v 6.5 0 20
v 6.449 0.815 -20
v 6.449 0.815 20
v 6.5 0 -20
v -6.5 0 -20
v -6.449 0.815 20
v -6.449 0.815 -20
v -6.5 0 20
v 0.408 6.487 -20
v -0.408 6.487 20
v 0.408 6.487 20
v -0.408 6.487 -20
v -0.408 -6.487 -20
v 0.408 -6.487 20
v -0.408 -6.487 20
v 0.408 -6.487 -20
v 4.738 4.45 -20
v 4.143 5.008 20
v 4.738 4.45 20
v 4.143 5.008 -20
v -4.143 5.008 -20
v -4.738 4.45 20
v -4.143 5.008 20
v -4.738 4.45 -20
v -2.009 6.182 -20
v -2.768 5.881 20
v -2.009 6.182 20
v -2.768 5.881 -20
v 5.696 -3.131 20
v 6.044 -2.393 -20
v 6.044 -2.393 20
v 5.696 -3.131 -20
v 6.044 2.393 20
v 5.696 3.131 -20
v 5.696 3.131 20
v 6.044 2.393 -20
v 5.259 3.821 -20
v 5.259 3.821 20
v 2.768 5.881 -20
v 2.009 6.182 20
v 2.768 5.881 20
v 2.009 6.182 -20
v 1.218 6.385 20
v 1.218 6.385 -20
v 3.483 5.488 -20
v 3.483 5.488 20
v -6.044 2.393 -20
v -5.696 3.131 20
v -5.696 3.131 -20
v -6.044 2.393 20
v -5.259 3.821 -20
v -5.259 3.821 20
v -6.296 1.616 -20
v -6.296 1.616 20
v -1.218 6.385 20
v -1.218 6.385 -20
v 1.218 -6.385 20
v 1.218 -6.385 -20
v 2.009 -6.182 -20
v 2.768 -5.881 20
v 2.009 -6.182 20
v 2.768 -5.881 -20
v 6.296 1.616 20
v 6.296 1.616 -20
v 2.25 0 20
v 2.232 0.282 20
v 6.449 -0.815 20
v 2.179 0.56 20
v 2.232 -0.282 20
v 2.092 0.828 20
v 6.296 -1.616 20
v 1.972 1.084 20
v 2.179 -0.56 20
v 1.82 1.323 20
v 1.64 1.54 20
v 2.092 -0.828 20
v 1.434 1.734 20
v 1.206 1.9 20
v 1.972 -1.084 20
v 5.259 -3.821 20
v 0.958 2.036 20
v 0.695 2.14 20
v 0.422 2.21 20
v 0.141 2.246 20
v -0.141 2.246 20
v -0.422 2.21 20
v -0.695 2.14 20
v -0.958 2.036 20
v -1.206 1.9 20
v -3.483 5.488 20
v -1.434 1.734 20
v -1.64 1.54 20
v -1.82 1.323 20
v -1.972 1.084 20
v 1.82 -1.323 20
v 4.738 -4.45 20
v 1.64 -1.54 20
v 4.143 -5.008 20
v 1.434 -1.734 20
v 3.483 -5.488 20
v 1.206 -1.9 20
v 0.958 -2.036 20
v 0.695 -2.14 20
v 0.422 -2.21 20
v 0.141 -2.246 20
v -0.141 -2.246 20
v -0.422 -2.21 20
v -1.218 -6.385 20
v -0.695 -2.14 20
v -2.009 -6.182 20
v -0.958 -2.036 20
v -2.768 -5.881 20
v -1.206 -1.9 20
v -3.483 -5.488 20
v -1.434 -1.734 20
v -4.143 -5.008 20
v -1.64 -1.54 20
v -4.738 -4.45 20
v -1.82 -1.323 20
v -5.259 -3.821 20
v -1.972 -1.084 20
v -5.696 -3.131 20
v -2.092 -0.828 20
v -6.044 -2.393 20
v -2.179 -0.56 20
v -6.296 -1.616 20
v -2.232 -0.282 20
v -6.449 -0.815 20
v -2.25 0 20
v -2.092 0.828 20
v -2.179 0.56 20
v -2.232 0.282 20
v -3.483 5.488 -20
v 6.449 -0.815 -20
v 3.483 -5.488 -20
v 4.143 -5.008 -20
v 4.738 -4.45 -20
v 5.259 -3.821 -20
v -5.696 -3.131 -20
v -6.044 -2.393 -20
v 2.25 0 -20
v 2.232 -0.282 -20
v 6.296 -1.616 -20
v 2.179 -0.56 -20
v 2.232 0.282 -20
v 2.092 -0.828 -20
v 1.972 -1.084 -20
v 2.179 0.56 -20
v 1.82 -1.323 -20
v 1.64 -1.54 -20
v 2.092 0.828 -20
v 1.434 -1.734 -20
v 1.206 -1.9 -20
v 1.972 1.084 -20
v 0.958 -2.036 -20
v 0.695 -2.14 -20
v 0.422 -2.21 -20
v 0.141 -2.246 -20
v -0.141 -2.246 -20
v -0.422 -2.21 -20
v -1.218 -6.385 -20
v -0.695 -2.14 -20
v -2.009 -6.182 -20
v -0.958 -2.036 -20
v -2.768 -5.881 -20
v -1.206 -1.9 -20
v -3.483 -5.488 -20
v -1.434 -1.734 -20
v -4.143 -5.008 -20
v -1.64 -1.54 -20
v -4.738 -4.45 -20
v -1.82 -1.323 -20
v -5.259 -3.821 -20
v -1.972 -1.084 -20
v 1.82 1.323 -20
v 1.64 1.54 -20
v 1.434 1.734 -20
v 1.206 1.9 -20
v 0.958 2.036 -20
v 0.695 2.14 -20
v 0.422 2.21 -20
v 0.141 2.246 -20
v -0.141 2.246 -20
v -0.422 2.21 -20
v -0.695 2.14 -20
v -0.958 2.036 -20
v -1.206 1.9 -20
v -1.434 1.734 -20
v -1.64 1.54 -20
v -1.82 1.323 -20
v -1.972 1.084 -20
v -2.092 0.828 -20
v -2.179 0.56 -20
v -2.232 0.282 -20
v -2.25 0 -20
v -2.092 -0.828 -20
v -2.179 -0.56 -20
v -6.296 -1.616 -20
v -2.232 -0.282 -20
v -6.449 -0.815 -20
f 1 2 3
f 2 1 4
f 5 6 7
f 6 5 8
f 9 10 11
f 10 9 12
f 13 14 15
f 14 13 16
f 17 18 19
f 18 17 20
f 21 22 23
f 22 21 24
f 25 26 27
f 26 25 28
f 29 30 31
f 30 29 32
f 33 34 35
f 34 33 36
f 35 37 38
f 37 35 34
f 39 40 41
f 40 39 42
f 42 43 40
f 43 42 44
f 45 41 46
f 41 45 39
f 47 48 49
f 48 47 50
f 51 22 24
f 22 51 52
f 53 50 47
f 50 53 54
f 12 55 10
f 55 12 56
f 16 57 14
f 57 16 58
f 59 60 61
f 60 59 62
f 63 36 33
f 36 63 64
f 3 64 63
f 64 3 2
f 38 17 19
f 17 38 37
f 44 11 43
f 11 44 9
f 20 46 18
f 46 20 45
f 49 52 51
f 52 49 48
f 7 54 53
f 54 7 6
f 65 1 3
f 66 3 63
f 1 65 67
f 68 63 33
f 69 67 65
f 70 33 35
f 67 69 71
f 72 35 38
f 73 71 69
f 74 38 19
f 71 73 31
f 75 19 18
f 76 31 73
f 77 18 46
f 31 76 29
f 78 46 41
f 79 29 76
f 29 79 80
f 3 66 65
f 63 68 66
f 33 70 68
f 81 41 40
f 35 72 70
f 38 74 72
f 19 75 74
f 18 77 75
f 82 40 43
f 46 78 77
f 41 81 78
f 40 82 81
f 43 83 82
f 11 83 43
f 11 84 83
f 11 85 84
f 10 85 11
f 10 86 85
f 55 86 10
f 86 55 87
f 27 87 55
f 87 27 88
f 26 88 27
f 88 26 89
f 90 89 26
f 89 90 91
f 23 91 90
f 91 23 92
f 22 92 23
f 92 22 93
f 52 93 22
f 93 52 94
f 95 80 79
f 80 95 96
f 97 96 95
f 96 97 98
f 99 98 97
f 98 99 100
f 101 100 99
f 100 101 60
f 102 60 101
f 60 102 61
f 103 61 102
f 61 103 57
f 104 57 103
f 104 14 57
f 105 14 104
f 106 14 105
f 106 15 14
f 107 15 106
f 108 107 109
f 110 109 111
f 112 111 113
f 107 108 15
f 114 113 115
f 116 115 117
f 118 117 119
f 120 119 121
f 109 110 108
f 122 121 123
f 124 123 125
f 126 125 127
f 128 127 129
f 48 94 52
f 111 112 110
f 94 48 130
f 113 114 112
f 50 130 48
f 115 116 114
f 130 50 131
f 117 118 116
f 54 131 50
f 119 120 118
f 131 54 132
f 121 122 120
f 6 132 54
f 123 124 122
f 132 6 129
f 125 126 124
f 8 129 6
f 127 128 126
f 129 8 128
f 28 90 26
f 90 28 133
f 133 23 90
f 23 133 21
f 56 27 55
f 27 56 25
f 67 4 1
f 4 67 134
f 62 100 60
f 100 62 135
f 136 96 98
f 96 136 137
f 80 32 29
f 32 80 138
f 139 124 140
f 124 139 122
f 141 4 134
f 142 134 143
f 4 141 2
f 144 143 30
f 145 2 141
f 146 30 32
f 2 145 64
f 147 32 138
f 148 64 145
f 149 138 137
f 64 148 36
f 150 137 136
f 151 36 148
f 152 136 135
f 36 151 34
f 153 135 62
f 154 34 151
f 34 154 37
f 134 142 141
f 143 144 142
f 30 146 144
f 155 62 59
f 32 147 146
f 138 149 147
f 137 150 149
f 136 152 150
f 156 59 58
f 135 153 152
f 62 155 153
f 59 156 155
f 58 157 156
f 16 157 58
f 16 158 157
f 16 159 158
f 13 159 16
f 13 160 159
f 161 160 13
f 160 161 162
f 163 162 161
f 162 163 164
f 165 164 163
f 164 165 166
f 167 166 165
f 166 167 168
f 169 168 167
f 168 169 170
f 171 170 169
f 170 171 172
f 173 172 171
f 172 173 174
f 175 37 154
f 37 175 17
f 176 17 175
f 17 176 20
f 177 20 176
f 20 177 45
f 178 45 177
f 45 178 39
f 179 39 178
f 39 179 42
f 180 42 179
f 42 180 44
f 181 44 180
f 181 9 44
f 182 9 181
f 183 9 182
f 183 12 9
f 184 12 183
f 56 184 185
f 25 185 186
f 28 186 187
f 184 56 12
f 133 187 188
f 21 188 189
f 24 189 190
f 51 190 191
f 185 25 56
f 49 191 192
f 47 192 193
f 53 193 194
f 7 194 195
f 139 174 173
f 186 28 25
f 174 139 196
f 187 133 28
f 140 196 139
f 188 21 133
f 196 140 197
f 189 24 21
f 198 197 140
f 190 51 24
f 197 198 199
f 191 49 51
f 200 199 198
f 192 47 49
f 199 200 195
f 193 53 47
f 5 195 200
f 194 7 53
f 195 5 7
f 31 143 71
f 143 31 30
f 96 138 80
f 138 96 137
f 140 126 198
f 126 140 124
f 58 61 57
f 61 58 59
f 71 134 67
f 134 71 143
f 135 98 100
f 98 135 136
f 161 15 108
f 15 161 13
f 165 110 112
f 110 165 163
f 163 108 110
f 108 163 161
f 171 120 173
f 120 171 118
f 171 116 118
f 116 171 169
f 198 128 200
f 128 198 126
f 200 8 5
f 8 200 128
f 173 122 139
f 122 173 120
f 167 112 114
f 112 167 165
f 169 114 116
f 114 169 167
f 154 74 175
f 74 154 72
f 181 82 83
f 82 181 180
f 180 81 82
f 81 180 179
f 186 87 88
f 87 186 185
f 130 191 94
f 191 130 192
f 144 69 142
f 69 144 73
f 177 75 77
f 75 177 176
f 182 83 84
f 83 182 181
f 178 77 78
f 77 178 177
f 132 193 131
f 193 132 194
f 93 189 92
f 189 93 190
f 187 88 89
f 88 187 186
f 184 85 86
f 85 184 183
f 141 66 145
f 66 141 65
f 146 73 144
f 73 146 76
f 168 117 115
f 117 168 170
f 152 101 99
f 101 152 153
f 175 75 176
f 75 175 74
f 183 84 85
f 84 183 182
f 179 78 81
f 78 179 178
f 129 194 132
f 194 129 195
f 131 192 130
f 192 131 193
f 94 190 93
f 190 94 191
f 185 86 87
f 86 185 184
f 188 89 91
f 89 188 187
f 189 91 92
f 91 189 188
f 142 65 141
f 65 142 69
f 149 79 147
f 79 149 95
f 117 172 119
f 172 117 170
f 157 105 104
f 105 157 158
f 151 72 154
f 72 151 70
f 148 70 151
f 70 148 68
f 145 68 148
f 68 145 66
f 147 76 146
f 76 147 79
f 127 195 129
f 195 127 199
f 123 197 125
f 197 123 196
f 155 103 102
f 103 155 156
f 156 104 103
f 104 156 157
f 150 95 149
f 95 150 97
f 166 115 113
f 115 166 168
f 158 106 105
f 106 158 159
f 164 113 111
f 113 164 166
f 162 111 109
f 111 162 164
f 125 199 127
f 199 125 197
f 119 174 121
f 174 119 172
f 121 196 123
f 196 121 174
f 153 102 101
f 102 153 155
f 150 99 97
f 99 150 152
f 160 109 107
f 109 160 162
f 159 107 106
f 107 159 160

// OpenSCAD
$fn = 50;


difference() {
	union() {
		translate(v = [0, 0, -20.0000000000]) {
			cylinder(h = 40, r = 6.5000000000);
		}
	}
	union() {
		translate(v = [0, 0, -100.0000000000]) {
			cylinder(h = 200, r = 2.2500000000);
		}
	}
}
